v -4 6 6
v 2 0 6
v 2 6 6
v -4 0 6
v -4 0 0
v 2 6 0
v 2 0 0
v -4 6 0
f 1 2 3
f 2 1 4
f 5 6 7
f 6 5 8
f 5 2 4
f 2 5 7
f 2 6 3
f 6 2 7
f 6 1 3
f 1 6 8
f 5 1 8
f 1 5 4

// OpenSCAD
// `^` binds tighter than unary minus, so -2^2 is -4. Reading it as (-2)^2 = 4
// mirrors the model about the origin, which a bounding box notices.
translate([-2^2, 0, 0]) cube([6, 6, 6]);
